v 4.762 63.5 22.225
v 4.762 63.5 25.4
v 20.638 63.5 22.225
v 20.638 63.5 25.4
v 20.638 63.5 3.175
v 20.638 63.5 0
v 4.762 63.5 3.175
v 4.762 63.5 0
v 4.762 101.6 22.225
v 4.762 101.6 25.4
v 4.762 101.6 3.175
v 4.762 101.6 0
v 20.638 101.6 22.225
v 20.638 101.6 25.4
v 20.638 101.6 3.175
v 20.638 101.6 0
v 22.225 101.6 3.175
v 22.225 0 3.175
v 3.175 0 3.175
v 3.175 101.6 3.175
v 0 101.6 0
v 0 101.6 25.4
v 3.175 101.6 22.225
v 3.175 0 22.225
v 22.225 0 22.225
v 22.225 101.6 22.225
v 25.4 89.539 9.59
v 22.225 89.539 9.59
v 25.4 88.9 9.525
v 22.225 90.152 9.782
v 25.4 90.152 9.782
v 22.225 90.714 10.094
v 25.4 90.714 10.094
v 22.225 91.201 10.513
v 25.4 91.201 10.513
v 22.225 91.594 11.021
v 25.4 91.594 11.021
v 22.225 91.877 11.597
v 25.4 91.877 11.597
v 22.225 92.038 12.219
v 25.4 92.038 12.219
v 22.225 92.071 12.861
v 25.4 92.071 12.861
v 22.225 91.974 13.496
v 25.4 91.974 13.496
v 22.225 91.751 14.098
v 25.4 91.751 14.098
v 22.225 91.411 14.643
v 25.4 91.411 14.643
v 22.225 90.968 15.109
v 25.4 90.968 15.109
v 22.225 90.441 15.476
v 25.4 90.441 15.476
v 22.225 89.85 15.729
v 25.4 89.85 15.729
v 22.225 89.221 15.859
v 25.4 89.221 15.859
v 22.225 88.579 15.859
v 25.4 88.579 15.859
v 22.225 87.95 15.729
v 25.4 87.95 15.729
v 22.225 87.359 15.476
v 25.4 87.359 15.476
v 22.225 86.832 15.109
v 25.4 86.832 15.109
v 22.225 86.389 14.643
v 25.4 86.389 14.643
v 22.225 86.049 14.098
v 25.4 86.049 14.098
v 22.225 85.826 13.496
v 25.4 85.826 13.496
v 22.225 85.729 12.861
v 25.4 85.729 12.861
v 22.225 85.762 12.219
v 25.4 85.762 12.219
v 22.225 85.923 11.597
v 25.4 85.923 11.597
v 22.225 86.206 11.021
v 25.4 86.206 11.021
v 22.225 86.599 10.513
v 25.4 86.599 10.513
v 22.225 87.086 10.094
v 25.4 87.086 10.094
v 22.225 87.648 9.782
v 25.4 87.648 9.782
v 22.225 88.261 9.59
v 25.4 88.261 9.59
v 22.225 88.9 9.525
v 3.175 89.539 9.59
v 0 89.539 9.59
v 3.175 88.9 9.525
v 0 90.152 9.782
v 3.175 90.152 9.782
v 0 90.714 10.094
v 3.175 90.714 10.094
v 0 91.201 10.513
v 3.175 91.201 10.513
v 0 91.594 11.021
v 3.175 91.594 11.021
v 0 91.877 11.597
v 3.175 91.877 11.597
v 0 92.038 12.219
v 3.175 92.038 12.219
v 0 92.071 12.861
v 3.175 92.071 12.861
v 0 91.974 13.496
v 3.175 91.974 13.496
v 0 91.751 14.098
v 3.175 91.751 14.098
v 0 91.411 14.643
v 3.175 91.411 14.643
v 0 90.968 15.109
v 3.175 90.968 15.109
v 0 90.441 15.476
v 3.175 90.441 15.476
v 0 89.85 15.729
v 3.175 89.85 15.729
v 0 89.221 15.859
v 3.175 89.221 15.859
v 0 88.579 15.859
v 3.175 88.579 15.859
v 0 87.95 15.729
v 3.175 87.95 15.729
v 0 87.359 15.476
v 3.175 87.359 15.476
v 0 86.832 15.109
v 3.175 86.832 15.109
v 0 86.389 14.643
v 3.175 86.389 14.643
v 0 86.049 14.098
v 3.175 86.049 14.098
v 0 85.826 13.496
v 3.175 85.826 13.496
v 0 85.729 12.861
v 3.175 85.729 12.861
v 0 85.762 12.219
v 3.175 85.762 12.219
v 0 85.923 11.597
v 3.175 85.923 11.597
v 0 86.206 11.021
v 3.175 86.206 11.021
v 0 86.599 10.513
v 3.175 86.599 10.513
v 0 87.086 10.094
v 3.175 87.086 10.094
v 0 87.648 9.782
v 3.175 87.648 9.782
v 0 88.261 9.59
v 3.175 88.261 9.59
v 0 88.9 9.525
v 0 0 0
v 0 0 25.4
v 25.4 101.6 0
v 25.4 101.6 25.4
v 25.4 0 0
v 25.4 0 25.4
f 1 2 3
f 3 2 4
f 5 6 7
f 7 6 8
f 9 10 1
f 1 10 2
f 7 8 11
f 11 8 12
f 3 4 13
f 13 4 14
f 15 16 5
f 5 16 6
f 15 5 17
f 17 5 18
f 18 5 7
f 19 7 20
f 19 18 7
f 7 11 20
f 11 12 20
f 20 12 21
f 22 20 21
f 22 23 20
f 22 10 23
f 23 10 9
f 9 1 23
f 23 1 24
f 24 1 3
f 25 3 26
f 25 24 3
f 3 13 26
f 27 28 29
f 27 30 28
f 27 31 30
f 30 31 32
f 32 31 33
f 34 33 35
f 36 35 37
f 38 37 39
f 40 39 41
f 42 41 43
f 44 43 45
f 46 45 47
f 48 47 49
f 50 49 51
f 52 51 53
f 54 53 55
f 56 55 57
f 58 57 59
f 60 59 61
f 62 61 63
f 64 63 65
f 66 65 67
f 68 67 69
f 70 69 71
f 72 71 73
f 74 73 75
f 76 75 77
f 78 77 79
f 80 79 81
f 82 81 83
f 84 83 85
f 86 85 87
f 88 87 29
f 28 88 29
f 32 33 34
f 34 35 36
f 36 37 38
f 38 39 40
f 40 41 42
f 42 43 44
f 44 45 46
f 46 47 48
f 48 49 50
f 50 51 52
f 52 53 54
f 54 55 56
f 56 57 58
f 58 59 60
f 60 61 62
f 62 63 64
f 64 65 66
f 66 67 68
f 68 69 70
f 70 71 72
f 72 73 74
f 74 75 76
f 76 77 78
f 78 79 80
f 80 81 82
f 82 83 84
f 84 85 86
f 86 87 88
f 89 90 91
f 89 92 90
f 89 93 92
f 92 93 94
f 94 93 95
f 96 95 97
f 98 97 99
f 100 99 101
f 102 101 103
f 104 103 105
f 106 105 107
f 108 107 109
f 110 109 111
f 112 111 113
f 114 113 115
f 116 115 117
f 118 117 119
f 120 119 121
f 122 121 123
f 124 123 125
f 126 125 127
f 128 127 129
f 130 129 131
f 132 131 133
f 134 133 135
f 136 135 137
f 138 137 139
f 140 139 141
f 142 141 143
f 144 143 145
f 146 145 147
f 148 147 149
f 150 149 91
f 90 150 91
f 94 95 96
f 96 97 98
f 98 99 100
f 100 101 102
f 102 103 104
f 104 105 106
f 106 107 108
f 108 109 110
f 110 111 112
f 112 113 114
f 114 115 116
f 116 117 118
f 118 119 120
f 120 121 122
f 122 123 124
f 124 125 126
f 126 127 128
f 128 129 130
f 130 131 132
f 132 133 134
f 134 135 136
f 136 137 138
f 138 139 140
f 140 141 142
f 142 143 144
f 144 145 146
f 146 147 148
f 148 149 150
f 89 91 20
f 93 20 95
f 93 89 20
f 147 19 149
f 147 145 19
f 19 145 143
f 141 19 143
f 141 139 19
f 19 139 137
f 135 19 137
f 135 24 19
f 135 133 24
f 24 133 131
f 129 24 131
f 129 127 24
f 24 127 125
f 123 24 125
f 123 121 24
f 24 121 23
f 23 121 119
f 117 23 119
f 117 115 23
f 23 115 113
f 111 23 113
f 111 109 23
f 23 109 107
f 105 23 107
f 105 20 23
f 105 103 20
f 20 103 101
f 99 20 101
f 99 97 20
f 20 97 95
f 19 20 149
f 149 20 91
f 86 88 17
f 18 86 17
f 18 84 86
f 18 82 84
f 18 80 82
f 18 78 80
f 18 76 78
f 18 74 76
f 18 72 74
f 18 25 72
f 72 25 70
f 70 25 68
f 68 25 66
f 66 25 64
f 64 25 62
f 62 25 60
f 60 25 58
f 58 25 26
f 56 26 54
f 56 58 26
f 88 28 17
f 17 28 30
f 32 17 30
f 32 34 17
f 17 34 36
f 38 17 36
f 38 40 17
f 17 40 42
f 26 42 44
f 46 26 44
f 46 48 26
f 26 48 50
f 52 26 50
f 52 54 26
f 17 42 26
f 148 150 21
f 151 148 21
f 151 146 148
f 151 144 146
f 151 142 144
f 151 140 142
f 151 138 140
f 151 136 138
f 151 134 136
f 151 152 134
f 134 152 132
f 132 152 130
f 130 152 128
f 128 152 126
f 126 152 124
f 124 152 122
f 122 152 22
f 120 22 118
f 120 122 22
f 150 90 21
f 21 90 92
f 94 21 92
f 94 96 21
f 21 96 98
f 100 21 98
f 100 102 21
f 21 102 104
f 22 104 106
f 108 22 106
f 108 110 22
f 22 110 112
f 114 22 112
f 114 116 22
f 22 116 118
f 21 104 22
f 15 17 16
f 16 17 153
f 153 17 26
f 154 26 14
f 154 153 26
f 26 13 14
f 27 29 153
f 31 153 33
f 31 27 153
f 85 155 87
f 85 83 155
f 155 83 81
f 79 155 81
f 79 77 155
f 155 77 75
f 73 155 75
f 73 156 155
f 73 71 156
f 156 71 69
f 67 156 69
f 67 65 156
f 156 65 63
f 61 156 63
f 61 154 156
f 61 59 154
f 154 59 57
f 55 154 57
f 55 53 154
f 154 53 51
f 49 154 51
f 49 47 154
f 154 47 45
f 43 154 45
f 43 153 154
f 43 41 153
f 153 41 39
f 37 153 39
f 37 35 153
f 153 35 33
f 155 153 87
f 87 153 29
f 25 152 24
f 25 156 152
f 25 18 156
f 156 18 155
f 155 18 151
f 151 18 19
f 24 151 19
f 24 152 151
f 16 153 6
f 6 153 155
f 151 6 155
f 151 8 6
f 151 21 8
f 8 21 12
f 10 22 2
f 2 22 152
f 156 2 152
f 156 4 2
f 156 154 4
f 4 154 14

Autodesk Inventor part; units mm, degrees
ref_plane "YZ Plane" through (0, 0, 0) normal (1, 0, 0) x (0, 1, 0)
ref_plane "XZ Plane" through (0, 0, 0) normal (0, 1, 0) x (-1, 0, 0)
ref_plane "XY Plane" through (0, 0, 0) normal (0, 0, 1) x (1, 0, 0)
sketch "Sketch1" plane through (0, 0, 0) normal (0, 0, 1) x (1, 0, 0)
  line L0 (0, 0) -> (25.4, 0)
  line L1 (25.4, 0) -> (25.4, 101.6)
  line L2 (25.4, 101.6) -> (0, 101.6)
  line L3 (0, 101.6) -> (0, 0)
  dimension "d0" = 25.4
  dimension "d1" = 101.6
extrude "Extrusion1" add sketch "Sketch1" along normal blind 25.4
shell "Shell1" thickness 3.175 removed faces 2 at (16.9333, 101.6, 16.9333) at (8.4667, 0, 8.4667)
sketch "Sketch2" plane through (25.4, 0, 0) normal (1, 0, 0) x (0, 0, -1)
  line L0 (0, 0) -> (0, 101.6) projected
  circle A0 centre (-12.7, 88.9) radius 3.175
  line L1 (0, 0) -> (-25.4, 0) projected
  dimension "d8" = 6.35
  dimension "d9" = 12.7
  dimension "d13" = 88.9
extrude "Extrusion2" cut sketch "Sketch2" against normal through all
sketch "Sketch3" plane through (0, 0, 0) normal (0, 0, -1) x (-1, 0, 0)
  line L0 (0, 101.6) -> (0, 0) projected
  line L1 (-25.4, 101.6) -> (0, 101.6) projected
  line L2 (-25.4, 0) -> (-25.4, 101.6) projected
  line L3 (-20.6375, 101.6) -> (-4.7625, 101.6)
  line L4 (-4.7625, 101.6) -> (-4.7625, 63.5)
  line L5 (-4.7625, 63.5) -> (-20.6375, 63.5)
  line L6 (-20.6375, 63.5) -> (-20.6375, 101.6)
  dimension "d14" = 38.1
  dimension "d15" = 4.7625
  dimension "d16" = 4.7625
extrude "Extrusion3" cut sketch "Sketch3" against normal blind 25.4
properties part number "PivotLeverBar" material "Aluminum-6061"
